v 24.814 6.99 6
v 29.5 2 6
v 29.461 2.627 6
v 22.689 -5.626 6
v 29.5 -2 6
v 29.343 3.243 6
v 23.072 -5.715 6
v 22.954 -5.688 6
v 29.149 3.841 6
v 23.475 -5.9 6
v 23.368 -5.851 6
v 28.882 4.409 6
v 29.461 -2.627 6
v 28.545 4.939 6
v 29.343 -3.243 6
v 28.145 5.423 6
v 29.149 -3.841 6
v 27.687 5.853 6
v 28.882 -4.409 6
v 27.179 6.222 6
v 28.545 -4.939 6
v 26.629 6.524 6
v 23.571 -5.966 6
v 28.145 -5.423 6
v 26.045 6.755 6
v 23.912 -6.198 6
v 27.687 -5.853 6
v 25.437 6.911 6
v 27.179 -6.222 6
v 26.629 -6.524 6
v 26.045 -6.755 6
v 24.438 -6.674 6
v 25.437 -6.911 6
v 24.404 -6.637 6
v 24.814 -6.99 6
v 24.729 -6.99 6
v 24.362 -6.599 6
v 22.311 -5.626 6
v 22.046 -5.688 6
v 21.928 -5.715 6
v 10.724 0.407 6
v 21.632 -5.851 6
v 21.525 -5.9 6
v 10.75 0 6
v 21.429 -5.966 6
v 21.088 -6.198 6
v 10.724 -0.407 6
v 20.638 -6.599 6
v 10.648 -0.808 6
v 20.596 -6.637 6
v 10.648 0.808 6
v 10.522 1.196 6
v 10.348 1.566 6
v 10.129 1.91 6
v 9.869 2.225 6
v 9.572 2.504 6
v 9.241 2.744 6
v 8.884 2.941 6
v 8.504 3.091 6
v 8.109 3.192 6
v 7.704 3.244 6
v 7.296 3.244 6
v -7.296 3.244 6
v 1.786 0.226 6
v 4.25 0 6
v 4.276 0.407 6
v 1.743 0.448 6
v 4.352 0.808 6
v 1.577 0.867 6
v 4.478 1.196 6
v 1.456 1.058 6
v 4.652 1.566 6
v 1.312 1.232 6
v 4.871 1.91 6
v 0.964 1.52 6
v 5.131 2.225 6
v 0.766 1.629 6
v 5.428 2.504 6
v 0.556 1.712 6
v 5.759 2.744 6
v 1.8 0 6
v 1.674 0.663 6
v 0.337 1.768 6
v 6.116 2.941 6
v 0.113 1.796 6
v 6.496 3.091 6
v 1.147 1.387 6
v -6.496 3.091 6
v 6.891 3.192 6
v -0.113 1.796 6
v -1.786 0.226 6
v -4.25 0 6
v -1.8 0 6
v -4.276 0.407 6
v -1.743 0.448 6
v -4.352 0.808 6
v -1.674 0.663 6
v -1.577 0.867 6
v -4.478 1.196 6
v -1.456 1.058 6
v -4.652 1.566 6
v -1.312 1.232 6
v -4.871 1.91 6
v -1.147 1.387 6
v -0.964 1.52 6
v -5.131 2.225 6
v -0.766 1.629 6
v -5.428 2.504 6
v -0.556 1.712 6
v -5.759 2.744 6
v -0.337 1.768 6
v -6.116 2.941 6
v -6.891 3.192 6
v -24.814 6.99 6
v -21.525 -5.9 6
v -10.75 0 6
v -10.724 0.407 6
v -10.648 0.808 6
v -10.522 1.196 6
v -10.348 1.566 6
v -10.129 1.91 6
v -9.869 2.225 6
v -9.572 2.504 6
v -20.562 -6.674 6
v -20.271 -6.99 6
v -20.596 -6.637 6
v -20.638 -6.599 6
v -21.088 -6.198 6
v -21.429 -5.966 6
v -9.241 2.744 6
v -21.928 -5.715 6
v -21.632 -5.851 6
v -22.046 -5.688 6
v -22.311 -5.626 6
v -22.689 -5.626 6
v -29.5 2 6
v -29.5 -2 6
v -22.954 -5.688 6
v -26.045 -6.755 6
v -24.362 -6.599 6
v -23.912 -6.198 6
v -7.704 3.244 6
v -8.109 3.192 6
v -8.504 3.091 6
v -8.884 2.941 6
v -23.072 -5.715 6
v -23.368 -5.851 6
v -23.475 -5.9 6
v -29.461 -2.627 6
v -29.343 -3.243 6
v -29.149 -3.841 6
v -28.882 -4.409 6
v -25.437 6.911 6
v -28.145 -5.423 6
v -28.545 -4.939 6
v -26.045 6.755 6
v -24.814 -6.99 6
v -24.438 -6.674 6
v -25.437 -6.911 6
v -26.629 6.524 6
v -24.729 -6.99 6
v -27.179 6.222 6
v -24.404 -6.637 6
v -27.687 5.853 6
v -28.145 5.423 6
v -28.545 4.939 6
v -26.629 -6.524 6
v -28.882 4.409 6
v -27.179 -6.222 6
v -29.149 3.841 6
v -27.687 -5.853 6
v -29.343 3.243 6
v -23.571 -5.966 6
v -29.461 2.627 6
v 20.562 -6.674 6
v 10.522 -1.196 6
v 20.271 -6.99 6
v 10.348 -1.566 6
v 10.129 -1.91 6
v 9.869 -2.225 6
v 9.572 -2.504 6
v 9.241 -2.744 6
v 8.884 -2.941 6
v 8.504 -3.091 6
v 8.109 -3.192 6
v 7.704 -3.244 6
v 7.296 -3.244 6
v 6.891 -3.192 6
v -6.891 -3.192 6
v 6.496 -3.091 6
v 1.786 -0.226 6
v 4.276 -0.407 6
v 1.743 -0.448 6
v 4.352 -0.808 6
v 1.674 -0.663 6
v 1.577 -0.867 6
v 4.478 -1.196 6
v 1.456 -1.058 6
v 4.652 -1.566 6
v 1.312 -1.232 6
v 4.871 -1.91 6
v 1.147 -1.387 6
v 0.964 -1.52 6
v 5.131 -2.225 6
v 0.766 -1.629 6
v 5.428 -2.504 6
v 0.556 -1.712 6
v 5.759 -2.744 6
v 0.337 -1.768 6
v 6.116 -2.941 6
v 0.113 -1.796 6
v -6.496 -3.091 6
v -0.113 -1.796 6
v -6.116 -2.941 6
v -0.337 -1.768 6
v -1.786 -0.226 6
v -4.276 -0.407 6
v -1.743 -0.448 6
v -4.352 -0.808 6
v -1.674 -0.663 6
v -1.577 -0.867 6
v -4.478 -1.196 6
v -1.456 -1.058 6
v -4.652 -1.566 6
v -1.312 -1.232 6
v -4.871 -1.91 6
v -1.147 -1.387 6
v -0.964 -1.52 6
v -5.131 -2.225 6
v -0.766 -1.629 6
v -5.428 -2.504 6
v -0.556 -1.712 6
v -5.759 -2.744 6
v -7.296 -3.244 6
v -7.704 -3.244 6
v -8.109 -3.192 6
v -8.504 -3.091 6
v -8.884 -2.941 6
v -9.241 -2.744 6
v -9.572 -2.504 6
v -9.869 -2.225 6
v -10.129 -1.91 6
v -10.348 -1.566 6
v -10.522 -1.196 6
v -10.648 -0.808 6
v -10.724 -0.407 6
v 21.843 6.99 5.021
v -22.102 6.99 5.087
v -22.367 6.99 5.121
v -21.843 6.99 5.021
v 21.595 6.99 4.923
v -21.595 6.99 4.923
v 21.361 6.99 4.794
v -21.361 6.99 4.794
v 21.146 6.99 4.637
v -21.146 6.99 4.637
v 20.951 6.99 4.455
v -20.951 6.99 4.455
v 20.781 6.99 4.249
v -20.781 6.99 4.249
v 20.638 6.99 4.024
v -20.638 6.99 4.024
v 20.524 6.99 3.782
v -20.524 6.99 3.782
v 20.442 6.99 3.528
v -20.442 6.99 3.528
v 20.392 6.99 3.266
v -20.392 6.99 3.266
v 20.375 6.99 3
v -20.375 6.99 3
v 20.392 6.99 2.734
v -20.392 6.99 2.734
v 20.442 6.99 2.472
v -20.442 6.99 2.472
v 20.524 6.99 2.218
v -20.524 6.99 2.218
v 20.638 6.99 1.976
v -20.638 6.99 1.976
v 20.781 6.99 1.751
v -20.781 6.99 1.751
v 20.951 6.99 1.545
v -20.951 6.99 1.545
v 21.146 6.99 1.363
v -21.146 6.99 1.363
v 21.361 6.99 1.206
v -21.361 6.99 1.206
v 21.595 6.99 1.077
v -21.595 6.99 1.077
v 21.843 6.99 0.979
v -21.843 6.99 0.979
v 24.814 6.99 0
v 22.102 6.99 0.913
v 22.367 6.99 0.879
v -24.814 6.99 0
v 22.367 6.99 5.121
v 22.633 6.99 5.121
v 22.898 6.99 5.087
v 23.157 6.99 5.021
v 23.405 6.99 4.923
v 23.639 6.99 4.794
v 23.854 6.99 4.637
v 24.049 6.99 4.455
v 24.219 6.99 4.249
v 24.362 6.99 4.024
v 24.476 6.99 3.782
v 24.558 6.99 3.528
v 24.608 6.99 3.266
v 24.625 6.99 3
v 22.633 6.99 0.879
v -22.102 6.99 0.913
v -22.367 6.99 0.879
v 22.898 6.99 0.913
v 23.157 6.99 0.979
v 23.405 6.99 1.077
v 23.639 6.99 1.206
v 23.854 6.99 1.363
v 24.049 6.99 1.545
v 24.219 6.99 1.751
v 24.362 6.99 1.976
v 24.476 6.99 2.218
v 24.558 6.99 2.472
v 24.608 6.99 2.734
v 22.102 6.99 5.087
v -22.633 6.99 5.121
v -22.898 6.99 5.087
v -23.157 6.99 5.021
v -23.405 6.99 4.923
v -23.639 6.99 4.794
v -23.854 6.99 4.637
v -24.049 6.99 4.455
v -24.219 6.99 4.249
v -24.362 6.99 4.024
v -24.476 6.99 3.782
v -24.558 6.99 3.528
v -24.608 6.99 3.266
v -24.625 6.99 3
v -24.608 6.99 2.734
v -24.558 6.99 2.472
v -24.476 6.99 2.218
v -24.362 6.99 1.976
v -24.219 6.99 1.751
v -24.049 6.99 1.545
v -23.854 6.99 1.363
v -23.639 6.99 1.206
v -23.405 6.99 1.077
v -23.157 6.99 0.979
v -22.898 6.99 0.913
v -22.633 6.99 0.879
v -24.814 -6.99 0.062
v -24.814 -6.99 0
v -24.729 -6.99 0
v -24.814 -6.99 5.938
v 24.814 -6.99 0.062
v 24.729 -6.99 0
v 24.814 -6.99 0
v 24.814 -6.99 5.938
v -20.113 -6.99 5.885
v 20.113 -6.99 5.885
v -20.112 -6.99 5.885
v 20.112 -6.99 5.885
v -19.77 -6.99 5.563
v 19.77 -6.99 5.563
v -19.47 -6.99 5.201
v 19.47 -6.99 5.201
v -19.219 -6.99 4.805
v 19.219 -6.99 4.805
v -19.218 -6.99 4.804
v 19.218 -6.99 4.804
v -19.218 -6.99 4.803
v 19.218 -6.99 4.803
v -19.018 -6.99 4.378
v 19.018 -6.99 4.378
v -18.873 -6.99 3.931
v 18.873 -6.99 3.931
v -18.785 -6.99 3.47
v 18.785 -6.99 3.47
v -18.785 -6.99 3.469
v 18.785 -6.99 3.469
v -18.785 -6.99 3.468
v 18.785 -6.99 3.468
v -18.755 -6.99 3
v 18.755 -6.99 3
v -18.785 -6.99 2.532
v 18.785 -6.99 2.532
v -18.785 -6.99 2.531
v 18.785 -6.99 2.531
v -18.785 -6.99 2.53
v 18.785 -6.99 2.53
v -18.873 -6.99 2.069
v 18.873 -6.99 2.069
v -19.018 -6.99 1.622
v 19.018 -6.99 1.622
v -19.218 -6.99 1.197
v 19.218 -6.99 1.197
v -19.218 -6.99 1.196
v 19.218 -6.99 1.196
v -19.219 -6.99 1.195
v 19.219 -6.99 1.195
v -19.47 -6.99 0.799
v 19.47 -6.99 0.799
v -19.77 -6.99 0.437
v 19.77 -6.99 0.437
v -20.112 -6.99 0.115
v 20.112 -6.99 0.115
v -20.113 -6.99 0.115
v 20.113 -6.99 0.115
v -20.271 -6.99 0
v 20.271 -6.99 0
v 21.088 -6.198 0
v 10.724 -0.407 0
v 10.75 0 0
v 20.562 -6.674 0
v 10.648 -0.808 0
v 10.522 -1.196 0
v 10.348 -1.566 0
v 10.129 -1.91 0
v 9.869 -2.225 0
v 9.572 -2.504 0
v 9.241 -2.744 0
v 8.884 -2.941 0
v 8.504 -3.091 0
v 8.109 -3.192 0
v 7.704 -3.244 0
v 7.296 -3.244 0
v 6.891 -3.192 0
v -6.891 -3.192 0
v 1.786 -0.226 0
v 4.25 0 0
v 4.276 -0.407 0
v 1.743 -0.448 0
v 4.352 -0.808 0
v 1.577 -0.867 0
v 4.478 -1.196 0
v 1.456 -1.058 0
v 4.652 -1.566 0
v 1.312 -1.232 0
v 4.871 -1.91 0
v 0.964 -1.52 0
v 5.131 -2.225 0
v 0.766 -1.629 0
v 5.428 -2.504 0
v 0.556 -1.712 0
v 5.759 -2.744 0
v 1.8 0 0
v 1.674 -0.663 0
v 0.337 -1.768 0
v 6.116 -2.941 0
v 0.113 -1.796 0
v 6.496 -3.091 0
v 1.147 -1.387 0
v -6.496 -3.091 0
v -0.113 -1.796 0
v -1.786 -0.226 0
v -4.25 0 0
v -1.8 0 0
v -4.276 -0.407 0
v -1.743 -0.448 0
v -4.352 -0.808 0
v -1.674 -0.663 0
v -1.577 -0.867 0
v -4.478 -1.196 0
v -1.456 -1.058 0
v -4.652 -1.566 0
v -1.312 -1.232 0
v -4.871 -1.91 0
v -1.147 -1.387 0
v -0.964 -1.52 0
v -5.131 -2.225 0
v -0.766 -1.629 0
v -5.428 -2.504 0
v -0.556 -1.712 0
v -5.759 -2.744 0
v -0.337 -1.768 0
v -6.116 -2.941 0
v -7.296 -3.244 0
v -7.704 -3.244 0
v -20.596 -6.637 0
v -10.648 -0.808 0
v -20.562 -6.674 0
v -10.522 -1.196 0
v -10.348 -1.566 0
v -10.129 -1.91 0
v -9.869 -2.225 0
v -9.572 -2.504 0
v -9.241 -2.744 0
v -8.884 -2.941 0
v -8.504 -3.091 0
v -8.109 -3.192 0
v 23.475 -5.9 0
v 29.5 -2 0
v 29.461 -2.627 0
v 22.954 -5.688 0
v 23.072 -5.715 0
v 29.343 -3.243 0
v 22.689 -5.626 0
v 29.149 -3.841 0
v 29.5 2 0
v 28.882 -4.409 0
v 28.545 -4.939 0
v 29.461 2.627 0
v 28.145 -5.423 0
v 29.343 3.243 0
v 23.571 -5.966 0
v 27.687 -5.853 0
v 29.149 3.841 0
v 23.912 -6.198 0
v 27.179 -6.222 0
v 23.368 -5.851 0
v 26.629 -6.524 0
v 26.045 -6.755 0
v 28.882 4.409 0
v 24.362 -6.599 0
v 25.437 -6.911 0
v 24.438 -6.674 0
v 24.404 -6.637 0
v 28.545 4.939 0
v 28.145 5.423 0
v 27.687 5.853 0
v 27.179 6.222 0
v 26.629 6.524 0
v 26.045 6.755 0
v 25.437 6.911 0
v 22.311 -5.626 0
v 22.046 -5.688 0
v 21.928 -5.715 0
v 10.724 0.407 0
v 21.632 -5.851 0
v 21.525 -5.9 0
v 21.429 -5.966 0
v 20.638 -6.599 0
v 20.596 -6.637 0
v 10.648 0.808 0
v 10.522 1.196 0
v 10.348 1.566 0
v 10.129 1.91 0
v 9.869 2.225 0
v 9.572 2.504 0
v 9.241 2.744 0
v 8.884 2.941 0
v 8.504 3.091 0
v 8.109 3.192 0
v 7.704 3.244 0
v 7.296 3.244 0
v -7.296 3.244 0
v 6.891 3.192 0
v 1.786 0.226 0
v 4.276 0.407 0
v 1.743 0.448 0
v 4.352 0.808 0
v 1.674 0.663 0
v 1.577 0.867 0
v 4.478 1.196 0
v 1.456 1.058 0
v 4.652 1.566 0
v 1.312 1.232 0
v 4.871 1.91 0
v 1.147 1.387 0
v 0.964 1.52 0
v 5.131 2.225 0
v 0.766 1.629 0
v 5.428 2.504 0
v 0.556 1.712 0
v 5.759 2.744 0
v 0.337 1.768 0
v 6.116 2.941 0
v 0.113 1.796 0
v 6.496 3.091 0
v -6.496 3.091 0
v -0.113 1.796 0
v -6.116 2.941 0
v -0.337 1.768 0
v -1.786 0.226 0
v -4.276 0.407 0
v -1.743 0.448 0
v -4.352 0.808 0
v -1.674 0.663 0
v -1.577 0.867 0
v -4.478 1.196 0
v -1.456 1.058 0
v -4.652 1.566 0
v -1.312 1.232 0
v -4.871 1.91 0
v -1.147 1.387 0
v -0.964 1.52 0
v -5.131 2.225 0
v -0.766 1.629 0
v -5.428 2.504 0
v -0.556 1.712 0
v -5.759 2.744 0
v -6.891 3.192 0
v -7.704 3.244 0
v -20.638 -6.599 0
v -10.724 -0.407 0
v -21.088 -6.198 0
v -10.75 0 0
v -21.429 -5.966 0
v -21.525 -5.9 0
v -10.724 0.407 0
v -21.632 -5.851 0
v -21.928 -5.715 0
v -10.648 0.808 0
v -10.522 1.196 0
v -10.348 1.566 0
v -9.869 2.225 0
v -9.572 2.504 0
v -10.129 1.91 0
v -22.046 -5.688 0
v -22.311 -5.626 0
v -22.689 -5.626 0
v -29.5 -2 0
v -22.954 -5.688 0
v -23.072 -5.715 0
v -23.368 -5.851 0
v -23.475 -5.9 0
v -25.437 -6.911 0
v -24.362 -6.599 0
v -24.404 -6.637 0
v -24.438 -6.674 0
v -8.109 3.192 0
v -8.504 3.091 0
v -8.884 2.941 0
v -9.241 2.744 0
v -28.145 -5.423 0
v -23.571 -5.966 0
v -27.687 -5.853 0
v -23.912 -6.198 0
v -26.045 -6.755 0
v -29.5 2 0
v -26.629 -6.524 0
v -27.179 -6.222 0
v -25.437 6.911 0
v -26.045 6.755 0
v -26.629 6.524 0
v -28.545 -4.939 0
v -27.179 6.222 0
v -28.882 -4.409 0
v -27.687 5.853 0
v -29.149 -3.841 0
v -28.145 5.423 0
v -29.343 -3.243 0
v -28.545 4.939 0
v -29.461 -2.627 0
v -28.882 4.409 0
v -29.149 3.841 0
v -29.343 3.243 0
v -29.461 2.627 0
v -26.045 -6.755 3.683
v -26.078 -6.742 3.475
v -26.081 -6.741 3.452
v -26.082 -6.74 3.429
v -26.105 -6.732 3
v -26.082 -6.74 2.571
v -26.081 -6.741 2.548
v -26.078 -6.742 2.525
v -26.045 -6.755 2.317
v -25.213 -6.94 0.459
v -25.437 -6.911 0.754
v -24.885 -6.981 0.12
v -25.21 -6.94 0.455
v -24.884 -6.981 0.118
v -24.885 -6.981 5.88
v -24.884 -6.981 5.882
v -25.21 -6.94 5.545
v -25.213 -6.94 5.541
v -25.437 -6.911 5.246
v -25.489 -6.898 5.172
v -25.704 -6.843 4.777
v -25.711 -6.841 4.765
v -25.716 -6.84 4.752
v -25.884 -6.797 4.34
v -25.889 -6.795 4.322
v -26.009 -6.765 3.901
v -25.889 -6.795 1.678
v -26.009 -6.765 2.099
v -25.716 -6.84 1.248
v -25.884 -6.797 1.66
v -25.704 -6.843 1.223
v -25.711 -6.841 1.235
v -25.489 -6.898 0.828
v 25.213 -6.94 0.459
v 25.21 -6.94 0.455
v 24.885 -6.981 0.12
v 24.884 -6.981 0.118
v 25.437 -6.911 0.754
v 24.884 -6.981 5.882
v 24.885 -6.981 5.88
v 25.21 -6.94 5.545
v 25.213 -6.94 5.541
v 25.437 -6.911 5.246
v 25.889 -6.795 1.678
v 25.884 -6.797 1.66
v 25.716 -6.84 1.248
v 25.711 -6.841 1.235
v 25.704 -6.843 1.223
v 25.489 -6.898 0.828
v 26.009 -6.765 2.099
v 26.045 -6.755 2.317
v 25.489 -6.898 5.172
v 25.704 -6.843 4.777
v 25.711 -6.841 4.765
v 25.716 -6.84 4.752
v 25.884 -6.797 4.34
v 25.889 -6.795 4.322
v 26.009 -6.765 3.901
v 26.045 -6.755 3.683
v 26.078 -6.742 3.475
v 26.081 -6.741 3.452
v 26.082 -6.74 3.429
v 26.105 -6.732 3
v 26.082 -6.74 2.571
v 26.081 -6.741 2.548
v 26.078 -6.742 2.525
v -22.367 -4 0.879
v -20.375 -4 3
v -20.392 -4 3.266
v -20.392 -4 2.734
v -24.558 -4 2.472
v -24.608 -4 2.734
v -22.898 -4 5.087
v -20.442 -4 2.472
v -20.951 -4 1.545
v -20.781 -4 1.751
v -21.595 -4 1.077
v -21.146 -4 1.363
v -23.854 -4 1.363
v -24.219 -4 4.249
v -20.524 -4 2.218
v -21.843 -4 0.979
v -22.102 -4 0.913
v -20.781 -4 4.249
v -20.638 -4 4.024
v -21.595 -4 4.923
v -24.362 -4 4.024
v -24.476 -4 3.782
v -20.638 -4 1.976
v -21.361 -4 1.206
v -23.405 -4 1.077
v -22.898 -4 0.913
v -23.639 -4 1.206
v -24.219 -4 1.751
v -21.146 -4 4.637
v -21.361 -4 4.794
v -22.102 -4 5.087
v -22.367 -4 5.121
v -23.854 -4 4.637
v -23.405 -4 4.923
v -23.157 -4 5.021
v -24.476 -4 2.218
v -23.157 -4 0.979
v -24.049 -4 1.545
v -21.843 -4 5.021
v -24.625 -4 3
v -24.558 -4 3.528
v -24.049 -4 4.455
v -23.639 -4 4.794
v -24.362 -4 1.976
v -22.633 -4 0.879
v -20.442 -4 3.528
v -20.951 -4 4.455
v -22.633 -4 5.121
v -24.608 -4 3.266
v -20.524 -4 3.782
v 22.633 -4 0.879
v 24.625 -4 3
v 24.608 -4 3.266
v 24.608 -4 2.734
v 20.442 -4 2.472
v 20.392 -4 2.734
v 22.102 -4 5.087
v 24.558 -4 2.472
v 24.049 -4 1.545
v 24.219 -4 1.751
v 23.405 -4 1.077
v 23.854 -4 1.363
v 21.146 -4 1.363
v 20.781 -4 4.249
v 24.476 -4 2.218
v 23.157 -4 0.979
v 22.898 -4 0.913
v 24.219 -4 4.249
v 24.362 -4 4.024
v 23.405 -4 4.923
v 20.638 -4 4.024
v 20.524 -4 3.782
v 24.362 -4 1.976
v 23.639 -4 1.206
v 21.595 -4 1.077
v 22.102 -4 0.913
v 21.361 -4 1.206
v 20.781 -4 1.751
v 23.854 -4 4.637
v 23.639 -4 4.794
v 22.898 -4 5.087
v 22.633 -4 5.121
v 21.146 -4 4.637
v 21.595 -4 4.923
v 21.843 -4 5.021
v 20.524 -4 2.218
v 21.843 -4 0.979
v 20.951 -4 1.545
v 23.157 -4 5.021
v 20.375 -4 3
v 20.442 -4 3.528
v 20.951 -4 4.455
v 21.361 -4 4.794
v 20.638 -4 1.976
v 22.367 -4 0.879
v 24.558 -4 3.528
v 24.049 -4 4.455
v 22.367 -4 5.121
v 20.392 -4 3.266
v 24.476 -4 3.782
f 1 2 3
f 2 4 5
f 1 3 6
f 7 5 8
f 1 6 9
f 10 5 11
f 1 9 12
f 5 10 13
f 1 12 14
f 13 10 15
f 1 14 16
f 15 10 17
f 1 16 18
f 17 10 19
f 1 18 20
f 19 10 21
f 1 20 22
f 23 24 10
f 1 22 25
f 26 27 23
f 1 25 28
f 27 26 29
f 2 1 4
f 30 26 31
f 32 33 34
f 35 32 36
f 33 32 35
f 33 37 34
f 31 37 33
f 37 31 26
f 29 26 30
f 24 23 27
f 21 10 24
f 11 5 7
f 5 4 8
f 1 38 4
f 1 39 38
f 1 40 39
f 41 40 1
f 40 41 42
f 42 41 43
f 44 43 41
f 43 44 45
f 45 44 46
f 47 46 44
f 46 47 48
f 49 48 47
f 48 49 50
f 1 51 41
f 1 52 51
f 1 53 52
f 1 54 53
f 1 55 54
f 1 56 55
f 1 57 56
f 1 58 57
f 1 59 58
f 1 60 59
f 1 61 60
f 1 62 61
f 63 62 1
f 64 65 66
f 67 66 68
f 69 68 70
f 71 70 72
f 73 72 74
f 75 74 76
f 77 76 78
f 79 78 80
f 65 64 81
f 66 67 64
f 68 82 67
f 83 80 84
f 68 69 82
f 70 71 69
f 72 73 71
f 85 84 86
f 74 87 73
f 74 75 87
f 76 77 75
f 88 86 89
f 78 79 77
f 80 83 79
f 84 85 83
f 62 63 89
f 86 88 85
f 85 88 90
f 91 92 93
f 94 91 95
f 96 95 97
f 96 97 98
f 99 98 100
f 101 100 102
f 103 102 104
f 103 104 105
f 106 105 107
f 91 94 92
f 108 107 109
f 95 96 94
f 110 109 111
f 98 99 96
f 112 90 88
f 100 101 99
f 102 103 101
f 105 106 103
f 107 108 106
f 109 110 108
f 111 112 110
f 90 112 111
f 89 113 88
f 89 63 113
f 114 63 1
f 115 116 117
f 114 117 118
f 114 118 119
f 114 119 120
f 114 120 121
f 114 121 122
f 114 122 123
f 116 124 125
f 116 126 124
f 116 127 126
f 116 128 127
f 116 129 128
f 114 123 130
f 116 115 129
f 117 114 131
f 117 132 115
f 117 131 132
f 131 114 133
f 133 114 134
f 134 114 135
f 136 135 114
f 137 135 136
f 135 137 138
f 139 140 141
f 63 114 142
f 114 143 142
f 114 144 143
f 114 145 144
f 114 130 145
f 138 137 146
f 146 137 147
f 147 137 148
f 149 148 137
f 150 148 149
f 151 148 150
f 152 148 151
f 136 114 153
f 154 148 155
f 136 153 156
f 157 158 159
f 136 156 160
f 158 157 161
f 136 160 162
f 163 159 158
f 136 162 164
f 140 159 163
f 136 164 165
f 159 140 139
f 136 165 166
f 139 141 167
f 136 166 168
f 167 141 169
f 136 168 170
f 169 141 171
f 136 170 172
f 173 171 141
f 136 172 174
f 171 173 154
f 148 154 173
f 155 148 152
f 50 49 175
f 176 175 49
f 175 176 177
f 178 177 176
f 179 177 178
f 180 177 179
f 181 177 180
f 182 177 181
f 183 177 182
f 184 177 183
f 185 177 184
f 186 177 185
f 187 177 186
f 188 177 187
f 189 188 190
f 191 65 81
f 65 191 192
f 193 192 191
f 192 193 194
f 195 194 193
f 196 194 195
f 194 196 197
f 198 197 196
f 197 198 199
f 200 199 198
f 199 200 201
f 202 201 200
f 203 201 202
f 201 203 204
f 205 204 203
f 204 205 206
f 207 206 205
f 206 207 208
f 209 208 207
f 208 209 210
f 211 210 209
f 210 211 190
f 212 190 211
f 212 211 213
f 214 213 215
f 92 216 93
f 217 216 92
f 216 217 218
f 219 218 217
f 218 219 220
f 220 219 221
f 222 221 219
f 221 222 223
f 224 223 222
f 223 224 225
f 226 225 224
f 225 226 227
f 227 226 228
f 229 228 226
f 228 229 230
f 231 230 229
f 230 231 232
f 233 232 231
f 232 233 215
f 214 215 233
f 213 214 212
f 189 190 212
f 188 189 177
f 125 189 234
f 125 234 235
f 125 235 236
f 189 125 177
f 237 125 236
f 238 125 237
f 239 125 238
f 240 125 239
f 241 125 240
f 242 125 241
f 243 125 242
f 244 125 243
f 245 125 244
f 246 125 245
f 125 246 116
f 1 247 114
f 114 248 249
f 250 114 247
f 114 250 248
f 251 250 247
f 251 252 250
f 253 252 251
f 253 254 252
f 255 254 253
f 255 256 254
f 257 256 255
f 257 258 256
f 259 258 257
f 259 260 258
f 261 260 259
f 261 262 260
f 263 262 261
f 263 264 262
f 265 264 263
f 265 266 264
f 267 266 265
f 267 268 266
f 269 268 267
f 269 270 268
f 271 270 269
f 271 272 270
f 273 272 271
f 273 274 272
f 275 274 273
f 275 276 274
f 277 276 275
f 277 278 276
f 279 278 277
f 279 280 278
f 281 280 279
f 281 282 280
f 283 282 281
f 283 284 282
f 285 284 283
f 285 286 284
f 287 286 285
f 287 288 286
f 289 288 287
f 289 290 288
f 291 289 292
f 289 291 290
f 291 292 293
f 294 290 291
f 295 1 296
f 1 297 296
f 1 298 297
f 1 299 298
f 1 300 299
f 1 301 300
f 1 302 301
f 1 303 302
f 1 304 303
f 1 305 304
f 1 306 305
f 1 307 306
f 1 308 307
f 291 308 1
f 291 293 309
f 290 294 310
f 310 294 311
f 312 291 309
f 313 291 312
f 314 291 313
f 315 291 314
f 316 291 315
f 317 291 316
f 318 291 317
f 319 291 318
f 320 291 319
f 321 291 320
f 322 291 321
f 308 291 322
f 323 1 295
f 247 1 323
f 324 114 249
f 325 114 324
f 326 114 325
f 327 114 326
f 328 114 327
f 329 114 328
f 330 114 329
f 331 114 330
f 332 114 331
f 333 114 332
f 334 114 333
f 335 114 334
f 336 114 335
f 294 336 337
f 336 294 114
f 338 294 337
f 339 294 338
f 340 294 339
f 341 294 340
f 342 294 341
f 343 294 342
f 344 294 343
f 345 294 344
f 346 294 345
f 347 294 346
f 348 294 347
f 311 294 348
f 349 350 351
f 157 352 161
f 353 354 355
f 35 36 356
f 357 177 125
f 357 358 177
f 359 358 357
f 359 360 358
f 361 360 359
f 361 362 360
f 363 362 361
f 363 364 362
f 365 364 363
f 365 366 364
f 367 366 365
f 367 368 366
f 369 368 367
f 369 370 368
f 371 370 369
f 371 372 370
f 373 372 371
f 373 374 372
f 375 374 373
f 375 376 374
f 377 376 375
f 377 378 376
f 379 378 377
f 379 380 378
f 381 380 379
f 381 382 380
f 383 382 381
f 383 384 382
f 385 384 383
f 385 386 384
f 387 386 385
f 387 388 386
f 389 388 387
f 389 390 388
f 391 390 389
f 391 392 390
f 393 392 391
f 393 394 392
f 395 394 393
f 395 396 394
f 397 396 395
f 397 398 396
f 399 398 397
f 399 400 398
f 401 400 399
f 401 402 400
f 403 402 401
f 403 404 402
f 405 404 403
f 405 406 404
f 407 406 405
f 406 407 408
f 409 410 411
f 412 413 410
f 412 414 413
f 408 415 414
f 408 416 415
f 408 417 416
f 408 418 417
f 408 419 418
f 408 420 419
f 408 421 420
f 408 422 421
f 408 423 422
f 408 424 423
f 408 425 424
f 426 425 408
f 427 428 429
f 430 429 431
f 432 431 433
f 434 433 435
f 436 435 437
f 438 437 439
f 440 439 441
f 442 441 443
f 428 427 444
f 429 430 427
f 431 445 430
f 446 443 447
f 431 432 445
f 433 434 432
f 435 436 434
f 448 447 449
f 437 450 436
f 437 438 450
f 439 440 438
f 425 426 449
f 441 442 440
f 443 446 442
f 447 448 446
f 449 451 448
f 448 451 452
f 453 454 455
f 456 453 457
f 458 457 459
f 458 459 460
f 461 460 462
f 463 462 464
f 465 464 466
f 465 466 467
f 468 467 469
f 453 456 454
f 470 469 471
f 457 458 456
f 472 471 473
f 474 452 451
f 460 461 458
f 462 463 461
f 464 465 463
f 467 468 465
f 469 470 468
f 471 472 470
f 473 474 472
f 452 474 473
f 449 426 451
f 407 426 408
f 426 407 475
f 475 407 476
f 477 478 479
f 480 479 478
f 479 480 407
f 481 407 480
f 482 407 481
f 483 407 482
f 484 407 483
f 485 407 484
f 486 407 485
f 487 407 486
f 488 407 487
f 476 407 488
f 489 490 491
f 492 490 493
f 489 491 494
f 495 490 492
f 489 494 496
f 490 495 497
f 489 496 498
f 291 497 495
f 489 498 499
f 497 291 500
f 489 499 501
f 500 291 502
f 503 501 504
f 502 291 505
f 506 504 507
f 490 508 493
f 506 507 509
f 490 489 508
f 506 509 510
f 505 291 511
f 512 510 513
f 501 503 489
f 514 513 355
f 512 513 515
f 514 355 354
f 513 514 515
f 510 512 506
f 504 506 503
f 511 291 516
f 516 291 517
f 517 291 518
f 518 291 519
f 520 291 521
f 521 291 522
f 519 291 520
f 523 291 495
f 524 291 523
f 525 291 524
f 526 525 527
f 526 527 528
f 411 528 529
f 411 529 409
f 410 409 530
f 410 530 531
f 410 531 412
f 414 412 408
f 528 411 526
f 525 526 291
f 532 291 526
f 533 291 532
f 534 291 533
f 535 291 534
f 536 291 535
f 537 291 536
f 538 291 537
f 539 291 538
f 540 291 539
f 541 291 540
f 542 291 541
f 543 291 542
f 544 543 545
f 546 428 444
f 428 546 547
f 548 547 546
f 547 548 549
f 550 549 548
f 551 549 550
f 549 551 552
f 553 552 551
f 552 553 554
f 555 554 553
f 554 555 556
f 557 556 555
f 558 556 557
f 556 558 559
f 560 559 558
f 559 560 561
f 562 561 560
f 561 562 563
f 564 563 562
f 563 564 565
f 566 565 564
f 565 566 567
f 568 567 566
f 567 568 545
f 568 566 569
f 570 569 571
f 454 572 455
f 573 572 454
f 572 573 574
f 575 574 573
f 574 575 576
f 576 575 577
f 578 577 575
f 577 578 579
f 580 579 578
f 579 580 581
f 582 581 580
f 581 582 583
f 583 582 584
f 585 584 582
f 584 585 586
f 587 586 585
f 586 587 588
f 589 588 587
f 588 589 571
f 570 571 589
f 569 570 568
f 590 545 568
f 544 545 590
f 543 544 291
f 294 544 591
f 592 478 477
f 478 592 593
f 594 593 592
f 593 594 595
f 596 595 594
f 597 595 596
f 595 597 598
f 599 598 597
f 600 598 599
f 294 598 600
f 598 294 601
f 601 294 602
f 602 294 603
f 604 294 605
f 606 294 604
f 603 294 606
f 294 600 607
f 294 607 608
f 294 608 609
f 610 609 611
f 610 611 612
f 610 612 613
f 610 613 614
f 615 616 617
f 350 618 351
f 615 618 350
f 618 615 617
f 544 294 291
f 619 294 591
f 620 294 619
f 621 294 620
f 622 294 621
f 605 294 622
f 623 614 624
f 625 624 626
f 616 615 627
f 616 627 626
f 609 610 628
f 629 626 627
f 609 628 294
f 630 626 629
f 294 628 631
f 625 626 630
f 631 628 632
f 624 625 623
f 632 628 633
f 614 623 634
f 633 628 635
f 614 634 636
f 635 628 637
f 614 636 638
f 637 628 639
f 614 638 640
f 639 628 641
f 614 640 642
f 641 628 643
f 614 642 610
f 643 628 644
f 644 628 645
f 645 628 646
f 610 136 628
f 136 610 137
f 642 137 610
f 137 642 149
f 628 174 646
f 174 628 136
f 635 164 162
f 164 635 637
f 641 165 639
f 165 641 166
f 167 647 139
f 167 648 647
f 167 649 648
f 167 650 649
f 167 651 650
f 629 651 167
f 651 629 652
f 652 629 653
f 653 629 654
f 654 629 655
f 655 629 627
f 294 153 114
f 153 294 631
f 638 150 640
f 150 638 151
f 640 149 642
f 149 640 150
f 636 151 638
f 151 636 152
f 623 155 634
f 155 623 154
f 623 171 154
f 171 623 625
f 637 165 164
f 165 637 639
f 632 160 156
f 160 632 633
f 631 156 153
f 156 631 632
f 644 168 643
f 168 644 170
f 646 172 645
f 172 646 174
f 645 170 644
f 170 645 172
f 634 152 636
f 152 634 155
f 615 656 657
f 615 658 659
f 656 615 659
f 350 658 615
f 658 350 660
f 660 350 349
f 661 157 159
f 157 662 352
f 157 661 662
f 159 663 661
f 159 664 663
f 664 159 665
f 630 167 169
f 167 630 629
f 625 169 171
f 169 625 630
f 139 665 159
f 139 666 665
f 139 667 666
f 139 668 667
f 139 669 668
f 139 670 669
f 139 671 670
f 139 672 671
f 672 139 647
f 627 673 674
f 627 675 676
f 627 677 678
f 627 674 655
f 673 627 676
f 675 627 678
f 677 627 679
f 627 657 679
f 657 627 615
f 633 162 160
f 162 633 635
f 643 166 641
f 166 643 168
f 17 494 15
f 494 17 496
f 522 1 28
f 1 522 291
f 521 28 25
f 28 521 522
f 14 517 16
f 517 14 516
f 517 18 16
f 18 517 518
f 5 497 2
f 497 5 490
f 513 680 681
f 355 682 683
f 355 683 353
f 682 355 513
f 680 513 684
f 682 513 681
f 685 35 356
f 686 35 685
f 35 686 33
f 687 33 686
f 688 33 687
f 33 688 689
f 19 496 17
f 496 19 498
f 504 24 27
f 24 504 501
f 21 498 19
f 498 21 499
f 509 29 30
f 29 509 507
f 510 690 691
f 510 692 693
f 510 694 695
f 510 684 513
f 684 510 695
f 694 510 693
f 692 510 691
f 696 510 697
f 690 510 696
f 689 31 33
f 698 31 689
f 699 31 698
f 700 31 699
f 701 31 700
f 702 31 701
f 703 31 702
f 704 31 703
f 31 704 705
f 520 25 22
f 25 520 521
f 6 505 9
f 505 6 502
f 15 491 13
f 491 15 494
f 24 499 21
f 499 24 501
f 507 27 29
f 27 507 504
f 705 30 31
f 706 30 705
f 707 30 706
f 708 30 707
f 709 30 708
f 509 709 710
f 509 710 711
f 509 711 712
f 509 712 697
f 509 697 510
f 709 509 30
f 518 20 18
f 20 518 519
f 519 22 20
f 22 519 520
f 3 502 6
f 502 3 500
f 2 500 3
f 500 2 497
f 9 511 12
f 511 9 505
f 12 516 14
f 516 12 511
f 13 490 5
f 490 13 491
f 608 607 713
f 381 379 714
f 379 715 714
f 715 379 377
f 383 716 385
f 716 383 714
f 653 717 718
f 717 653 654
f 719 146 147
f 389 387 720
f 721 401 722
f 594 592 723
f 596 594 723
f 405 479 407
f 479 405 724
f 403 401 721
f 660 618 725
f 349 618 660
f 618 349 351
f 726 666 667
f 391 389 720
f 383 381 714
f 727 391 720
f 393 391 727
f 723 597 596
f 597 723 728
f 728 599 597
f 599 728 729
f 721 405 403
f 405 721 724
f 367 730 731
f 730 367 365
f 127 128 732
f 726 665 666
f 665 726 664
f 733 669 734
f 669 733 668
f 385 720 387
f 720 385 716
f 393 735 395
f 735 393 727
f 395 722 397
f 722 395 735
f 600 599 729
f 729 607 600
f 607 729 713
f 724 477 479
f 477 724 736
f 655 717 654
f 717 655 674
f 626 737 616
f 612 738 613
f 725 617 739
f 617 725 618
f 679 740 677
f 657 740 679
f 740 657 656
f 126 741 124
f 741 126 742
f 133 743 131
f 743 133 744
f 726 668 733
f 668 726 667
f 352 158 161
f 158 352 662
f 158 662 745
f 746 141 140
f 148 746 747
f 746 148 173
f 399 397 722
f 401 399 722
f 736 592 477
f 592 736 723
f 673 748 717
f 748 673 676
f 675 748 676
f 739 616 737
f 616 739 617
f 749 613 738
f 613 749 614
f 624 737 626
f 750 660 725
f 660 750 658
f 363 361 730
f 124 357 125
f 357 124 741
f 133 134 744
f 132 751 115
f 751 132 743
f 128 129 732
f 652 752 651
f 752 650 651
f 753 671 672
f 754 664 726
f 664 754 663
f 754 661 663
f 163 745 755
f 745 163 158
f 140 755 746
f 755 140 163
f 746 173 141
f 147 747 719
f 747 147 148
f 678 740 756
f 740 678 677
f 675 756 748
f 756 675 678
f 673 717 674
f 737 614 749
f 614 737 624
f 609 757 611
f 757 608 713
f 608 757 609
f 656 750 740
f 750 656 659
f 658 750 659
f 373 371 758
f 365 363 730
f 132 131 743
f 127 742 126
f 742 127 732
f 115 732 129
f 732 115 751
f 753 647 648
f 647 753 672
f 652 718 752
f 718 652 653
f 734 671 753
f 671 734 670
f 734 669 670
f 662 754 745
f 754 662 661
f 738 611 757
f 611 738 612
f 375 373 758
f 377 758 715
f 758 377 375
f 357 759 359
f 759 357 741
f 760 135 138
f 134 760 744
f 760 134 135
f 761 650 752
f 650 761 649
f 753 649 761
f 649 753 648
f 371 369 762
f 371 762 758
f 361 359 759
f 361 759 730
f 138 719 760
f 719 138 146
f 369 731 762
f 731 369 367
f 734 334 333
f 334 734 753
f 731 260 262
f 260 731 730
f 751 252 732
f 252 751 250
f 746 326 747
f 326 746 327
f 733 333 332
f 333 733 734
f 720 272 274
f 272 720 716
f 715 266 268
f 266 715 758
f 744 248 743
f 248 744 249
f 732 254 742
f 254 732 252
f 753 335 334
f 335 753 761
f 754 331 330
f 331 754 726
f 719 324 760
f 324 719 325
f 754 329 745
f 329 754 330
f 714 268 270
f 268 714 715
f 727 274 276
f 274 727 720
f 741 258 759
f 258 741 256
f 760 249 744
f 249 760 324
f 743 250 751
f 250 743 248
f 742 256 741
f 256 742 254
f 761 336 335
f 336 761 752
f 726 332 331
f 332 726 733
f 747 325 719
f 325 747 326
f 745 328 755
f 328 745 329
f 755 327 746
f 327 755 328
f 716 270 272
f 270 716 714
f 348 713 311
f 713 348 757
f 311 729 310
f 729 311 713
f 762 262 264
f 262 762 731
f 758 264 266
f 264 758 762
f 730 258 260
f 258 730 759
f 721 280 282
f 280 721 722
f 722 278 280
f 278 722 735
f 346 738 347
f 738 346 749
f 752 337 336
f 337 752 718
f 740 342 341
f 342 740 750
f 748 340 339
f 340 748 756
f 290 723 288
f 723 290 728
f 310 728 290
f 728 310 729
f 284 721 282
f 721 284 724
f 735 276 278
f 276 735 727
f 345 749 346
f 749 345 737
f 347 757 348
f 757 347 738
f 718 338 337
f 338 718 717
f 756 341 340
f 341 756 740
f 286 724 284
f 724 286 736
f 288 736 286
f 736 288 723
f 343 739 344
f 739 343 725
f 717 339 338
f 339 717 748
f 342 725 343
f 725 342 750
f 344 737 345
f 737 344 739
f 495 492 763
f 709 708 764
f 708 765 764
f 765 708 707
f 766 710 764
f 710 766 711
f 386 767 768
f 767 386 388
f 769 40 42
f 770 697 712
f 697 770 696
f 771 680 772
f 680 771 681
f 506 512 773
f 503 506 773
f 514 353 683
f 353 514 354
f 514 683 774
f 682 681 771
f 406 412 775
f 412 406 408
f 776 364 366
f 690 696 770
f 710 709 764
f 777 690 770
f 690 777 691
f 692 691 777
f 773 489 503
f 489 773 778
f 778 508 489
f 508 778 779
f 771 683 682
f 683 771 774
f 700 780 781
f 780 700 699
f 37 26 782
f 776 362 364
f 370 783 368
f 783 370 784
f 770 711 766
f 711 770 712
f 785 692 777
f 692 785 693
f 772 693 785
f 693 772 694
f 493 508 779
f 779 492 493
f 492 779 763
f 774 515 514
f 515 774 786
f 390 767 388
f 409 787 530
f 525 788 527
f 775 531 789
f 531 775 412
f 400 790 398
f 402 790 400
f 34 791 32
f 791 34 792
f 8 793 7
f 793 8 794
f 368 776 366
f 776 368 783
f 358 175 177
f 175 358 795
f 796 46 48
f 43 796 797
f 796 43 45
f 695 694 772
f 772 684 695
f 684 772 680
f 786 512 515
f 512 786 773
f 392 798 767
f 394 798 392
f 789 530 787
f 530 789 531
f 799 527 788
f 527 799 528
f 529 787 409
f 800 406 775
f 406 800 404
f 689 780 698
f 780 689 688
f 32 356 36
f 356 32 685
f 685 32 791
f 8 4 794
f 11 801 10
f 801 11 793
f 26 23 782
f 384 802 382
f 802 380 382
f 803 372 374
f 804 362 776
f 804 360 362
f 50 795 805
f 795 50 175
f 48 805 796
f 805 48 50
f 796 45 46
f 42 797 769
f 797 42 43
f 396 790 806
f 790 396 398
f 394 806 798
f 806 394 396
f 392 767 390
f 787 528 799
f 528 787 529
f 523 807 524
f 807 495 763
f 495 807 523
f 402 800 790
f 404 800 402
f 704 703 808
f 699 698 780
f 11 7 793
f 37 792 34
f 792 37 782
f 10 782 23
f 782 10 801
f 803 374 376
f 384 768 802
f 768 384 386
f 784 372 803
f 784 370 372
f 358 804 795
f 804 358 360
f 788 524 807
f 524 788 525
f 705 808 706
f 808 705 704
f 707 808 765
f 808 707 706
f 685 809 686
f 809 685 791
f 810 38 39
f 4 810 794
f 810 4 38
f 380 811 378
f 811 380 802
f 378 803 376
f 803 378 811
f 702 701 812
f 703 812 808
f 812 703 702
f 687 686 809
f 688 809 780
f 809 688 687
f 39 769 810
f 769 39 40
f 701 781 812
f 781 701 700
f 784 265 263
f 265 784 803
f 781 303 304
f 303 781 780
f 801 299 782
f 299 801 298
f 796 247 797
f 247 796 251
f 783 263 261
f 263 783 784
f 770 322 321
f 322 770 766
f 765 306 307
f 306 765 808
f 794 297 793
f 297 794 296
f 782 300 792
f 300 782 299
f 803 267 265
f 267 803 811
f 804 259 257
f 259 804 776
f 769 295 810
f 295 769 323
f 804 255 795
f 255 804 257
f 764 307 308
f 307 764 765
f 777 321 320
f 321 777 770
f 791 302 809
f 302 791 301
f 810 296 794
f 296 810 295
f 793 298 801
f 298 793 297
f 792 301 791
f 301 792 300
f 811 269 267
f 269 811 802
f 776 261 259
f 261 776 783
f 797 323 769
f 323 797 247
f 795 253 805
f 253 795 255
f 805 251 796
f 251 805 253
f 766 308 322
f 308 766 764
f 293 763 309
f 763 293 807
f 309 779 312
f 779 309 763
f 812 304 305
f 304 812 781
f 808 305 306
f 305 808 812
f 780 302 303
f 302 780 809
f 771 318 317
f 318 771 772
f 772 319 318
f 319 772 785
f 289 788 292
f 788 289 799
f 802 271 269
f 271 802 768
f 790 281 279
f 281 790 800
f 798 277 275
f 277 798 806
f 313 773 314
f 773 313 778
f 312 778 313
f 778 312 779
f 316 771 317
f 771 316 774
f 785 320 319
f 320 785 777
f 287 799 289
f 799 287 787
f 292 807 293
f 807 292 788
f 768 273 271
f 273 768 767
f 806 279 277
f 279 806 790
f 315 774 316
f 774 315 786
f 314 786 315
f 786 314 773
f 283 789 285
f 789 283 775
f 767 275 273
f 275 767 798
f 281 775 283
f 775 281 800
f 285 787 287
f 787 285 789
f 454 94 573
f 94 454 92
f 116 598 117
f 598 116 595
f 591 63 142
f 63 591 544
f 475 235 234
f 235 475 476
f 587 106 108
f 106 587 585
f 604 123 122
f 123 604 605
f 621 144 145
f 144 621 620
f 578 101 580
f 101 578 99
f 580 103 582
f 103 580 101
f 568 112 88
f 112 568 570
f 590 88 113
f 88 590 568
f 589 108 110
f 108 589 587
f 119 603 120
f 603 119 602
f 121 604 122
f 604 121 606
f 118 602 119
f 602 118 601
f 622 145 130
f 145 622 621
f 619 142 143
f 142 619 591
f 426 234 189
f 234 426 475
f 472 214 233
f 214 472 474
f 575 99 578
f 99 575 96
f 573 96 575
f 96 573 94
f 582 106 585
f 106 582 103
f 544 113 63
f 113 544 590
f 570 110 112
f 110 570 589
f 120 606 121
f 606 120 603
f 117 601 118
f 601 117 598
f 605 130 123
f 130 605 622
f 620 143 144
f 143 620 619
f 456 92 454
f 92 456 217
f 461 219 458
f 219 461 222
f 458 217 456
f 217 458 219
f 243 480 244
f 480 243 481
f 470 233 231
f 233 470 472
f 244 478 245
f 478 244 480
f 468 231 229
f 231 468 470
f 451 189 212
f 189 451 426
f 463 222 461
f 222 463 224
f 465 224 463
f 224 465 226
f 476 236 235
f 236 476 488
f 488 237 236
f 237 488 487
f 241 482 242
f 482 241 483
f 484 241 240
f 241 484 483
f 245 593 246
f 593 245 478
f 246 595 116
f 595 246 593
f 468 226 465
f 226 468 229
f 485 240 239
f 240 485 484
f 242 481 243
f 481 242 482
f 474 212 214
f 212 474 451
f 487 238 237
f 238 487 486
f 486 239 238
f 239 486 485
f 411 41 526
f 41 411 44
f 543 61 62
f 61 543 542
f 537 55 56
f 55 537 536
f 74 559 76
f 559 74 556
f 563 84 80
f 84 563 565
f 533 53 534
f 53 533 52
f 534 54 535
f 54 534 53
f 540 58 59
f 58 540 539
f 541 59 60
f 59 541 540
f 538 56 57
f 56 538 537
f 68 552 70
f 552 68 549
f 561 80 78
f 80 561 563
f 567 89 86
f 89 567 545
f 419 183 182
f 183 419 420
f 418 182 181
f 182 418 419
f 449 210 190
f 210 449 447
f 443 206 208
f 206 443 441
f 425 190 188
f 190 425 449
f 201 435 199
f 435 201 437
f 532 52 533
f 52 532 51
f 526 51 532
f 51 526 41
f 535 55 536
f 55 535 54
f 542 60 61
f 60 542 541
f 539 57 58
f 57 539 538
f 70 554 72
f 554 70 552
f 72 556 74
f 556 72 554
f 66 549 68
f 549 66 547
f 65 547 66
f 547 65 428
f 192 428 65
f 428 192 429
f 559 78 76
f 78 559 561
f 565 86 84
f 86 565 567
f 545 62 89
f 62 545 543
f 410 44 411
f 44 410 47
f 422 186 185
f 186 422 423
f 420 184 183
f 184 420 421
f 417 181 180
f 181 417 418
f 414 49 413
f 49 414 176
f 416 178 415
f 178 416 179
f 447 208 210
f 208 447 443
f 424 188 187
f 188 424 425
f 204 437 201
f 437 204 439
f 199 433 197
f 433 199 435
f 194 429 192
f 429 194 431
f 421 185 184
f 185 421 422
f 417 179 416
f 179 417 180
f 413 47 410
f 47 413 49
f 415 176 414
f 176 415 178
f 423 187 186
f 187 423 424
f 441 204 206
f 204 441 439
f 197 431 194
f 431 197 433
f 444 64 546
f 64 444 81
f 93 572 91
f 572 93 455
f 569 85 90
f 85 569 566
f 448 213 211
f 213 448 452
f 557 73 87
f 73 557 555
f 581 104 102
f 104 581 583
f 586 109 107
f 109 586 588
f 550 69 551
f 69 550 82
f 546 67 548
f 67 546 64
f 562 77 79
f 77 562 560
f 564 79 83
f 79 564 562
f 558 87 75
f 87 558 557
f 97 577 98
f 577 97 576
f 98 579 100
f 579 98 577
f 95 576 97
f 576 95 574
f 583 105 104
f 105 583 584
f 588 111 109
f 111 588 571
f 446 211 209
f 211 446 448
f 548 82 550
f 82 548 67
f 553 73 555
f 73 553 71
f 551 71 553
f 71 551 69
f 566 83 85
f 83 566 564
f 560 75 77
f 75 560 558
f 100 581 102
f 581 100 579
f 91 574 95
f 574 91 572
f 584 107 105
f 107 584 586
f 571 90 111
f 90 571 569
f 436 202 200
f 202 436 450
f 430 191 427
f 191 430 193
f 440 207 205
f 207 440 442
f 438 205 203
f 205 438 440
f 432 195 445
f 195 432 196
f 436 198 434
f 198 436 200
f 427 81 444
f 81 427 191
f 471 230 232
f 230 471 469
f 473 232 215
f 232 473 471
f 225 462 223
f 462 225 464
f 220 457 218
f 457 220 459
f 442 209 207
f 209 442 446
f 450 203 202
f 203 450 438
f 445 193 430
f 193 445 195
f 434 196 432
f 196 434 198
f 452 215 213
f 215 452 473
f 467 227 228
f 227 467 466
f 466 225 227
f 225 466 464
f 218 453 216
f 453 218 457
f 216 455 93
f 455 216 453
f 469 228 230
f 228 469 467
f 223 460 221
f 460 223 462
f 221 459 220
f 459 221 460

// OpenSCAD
$fn = 50;


difference() {
	union() {
		hull() {
			translate(v = [-9.5000000000, 2.0000000000, 0]) {
				cylinder(h = 6, r = 5);
			}
			translate(v = [9.5000000000, 2.0000000000, 0]) {
				cylinder(h = 6, r = 5);
			}
			translate(v = [-9.5000000000, -2.0000000000, 0]) {
				cylinder(h = 6, r = 5);
			}
			translate(v = [9.5000000000, -2.0000000000, 0]) {
				cylinder(h = 6, r = 5);
			}
		}
		translate(v = [-15.0000000000, 0.0000000000, 0]) {
			hull() {
				translate(v = [-9.5000000000, 2.0000000000, 0]) {
					cylinder(h = 6, r = 5);
				}
				translate(v = [9.5000000000, 2.0000000000, 0]) {
					cylinder(h = 6, r = 5);
				}
				translate(v = [-9.5000000000, -2.0000000000, 0]) {
					cylinder(h = 6, r = 5);
				}
				translate(v = [9.5000000000, -2.0000000000, 0]) {
					cylinder(h = 6, r = 5);
				}
			}
		}
		translate(v = [-15.0000000000, 0.0000000000, 0]) {
			hull() {
				translate(v = [-9.5000000000, 2.0000000000, 0]) {
					cylinder(h = 6, r = 5);
				}
				translate(v = [9.5000000000, 2.0000000000, 0]) {
					cylinder(h = 6, r = 5);
				}
				translate(v = [-9.5000000000, -2.0000000000, 0]) {
					cylinder(h = 6, r = 5);
				}
				translate(v = [9.5000000000, -2.0000000000, 0]) {
					cylinder(h = 6, r = 5);
				}
			}
		}
		translate(v = [15.0000000000, 0.0000000000, 0]) {
			hull() {
				translate(v = [-9.5000000000, 2.0000000000, 0]) {
					cylinder(h = 6, r = 5);
				}
				translate(v = [9.5000000000, 2.0000000000, 0]) {
					cylinder(h = 6, r = 5);
				}
				translate(v = [-9.5000000000, -2.0000000000, 0]) {
					cylinder(h = 6, r = 5);
				}
				translate(v = [9.5000000000, -2.0000000000, 0]) {
					cylinder(h = 6, r = 5);
				}
			}
		}
		translate(v = [15.0000000000, 0.0000000000, 0]) {
			hull() {
				translate(v = [-9.5000000000, 2.0000000000, 0]) {
					cylinder(h = 6, r = 5);
				}
				translate(v = [9.5000000000, 2.0000000000, 0]) {
					cylinder(h = 6, r = 5);
				}
				translate(v = [-9.5000000000, -2.0000000000, 0]) {
					cylinder(h = 6, r = 5);
				}
				translate(v = [9.5000000000, -2.0000000000, 0]) {
					cylinder(h = 6, r = 5);
				}
			}
		}
	}
	union() {
		translate(v = [-22.5000000000, -7.0000000000, 3.0000000000]) {
			rotate(a = [90, 0, 0]) {
				difference() {
					union() {
						#translate(v = [0, 0, -14.0000000000]) {
							cylinder(h = 14, r = 2.0000000000);
						}
						#translate(v = [0, 0, -3]) {
							cylinder(h = 3, r1 = 2.1250000000, r2 = 3.7500000000);
						}
						#translate(v = [0, 0, -14.0000000000]) {
							cylinder(h = 14, r = 2.1250000000);
						}
						#translate(v = [0, 0, -14.0000000000]) {
							cylinder(h = 14, r = 2.0000000000);
						}
					}
					union();
				}
			}
		}
		translate(v = [22.5000000000, -7.0000000000, 3.0000000000]) {
			rotate(a = [90, 0, 0]) {
				difference() {
					union() {
						#translate(v = [0, 0, -14.0000000000]) {
							cylinder(h = 14, r = 2.0000000000);
						}
						#translate(v = [0, 0, -3]) {
							cylinder(h = 3, r1 = 2.1250000000, r2 = 3.7500000000);
						}
						#translate(v = [0, 0, -14.0000000000]) {
							cylinder(h = 14, r = 2.1250000000);
						}
						#translate(v = [0, 0, -14.0000000000]) {
							cylinder(h = 14, r = 2.0000000000);
						}
					}
					union();
				}
			}
		}
		translate(v = [-7.5000000000, 0.0000000000, 0]) {
			translate(v = [0, 0, -100]) {
				cylinder(h = 200, r = 3.2500000000);
			}
		}
		translate(v = [7.5000000000, 0.0000000000, 0]) {
			translate(v = [0, 0, -100]) {
				cylinder(h = 200, r = 3.2500000000);
			}
		}
		translate(v = [-7.5000000000, 0.0000000000, 0]) {
			translate(v = [0, 0, -100]) {
				cylinder(h = 200, r = 1.8000000000);
			}
		}
		translate(v = [0, 0, -100]) {
			cylinder(h = 200, r = 1.8000000000);
		}
		translate(v = [7.5000000000, 0.0000000000, 0]) {
			translate(v = [0, 0, -100]) {
				cylinder(h = 200, r = 1.8000000000);
			}
		}
	}
}
